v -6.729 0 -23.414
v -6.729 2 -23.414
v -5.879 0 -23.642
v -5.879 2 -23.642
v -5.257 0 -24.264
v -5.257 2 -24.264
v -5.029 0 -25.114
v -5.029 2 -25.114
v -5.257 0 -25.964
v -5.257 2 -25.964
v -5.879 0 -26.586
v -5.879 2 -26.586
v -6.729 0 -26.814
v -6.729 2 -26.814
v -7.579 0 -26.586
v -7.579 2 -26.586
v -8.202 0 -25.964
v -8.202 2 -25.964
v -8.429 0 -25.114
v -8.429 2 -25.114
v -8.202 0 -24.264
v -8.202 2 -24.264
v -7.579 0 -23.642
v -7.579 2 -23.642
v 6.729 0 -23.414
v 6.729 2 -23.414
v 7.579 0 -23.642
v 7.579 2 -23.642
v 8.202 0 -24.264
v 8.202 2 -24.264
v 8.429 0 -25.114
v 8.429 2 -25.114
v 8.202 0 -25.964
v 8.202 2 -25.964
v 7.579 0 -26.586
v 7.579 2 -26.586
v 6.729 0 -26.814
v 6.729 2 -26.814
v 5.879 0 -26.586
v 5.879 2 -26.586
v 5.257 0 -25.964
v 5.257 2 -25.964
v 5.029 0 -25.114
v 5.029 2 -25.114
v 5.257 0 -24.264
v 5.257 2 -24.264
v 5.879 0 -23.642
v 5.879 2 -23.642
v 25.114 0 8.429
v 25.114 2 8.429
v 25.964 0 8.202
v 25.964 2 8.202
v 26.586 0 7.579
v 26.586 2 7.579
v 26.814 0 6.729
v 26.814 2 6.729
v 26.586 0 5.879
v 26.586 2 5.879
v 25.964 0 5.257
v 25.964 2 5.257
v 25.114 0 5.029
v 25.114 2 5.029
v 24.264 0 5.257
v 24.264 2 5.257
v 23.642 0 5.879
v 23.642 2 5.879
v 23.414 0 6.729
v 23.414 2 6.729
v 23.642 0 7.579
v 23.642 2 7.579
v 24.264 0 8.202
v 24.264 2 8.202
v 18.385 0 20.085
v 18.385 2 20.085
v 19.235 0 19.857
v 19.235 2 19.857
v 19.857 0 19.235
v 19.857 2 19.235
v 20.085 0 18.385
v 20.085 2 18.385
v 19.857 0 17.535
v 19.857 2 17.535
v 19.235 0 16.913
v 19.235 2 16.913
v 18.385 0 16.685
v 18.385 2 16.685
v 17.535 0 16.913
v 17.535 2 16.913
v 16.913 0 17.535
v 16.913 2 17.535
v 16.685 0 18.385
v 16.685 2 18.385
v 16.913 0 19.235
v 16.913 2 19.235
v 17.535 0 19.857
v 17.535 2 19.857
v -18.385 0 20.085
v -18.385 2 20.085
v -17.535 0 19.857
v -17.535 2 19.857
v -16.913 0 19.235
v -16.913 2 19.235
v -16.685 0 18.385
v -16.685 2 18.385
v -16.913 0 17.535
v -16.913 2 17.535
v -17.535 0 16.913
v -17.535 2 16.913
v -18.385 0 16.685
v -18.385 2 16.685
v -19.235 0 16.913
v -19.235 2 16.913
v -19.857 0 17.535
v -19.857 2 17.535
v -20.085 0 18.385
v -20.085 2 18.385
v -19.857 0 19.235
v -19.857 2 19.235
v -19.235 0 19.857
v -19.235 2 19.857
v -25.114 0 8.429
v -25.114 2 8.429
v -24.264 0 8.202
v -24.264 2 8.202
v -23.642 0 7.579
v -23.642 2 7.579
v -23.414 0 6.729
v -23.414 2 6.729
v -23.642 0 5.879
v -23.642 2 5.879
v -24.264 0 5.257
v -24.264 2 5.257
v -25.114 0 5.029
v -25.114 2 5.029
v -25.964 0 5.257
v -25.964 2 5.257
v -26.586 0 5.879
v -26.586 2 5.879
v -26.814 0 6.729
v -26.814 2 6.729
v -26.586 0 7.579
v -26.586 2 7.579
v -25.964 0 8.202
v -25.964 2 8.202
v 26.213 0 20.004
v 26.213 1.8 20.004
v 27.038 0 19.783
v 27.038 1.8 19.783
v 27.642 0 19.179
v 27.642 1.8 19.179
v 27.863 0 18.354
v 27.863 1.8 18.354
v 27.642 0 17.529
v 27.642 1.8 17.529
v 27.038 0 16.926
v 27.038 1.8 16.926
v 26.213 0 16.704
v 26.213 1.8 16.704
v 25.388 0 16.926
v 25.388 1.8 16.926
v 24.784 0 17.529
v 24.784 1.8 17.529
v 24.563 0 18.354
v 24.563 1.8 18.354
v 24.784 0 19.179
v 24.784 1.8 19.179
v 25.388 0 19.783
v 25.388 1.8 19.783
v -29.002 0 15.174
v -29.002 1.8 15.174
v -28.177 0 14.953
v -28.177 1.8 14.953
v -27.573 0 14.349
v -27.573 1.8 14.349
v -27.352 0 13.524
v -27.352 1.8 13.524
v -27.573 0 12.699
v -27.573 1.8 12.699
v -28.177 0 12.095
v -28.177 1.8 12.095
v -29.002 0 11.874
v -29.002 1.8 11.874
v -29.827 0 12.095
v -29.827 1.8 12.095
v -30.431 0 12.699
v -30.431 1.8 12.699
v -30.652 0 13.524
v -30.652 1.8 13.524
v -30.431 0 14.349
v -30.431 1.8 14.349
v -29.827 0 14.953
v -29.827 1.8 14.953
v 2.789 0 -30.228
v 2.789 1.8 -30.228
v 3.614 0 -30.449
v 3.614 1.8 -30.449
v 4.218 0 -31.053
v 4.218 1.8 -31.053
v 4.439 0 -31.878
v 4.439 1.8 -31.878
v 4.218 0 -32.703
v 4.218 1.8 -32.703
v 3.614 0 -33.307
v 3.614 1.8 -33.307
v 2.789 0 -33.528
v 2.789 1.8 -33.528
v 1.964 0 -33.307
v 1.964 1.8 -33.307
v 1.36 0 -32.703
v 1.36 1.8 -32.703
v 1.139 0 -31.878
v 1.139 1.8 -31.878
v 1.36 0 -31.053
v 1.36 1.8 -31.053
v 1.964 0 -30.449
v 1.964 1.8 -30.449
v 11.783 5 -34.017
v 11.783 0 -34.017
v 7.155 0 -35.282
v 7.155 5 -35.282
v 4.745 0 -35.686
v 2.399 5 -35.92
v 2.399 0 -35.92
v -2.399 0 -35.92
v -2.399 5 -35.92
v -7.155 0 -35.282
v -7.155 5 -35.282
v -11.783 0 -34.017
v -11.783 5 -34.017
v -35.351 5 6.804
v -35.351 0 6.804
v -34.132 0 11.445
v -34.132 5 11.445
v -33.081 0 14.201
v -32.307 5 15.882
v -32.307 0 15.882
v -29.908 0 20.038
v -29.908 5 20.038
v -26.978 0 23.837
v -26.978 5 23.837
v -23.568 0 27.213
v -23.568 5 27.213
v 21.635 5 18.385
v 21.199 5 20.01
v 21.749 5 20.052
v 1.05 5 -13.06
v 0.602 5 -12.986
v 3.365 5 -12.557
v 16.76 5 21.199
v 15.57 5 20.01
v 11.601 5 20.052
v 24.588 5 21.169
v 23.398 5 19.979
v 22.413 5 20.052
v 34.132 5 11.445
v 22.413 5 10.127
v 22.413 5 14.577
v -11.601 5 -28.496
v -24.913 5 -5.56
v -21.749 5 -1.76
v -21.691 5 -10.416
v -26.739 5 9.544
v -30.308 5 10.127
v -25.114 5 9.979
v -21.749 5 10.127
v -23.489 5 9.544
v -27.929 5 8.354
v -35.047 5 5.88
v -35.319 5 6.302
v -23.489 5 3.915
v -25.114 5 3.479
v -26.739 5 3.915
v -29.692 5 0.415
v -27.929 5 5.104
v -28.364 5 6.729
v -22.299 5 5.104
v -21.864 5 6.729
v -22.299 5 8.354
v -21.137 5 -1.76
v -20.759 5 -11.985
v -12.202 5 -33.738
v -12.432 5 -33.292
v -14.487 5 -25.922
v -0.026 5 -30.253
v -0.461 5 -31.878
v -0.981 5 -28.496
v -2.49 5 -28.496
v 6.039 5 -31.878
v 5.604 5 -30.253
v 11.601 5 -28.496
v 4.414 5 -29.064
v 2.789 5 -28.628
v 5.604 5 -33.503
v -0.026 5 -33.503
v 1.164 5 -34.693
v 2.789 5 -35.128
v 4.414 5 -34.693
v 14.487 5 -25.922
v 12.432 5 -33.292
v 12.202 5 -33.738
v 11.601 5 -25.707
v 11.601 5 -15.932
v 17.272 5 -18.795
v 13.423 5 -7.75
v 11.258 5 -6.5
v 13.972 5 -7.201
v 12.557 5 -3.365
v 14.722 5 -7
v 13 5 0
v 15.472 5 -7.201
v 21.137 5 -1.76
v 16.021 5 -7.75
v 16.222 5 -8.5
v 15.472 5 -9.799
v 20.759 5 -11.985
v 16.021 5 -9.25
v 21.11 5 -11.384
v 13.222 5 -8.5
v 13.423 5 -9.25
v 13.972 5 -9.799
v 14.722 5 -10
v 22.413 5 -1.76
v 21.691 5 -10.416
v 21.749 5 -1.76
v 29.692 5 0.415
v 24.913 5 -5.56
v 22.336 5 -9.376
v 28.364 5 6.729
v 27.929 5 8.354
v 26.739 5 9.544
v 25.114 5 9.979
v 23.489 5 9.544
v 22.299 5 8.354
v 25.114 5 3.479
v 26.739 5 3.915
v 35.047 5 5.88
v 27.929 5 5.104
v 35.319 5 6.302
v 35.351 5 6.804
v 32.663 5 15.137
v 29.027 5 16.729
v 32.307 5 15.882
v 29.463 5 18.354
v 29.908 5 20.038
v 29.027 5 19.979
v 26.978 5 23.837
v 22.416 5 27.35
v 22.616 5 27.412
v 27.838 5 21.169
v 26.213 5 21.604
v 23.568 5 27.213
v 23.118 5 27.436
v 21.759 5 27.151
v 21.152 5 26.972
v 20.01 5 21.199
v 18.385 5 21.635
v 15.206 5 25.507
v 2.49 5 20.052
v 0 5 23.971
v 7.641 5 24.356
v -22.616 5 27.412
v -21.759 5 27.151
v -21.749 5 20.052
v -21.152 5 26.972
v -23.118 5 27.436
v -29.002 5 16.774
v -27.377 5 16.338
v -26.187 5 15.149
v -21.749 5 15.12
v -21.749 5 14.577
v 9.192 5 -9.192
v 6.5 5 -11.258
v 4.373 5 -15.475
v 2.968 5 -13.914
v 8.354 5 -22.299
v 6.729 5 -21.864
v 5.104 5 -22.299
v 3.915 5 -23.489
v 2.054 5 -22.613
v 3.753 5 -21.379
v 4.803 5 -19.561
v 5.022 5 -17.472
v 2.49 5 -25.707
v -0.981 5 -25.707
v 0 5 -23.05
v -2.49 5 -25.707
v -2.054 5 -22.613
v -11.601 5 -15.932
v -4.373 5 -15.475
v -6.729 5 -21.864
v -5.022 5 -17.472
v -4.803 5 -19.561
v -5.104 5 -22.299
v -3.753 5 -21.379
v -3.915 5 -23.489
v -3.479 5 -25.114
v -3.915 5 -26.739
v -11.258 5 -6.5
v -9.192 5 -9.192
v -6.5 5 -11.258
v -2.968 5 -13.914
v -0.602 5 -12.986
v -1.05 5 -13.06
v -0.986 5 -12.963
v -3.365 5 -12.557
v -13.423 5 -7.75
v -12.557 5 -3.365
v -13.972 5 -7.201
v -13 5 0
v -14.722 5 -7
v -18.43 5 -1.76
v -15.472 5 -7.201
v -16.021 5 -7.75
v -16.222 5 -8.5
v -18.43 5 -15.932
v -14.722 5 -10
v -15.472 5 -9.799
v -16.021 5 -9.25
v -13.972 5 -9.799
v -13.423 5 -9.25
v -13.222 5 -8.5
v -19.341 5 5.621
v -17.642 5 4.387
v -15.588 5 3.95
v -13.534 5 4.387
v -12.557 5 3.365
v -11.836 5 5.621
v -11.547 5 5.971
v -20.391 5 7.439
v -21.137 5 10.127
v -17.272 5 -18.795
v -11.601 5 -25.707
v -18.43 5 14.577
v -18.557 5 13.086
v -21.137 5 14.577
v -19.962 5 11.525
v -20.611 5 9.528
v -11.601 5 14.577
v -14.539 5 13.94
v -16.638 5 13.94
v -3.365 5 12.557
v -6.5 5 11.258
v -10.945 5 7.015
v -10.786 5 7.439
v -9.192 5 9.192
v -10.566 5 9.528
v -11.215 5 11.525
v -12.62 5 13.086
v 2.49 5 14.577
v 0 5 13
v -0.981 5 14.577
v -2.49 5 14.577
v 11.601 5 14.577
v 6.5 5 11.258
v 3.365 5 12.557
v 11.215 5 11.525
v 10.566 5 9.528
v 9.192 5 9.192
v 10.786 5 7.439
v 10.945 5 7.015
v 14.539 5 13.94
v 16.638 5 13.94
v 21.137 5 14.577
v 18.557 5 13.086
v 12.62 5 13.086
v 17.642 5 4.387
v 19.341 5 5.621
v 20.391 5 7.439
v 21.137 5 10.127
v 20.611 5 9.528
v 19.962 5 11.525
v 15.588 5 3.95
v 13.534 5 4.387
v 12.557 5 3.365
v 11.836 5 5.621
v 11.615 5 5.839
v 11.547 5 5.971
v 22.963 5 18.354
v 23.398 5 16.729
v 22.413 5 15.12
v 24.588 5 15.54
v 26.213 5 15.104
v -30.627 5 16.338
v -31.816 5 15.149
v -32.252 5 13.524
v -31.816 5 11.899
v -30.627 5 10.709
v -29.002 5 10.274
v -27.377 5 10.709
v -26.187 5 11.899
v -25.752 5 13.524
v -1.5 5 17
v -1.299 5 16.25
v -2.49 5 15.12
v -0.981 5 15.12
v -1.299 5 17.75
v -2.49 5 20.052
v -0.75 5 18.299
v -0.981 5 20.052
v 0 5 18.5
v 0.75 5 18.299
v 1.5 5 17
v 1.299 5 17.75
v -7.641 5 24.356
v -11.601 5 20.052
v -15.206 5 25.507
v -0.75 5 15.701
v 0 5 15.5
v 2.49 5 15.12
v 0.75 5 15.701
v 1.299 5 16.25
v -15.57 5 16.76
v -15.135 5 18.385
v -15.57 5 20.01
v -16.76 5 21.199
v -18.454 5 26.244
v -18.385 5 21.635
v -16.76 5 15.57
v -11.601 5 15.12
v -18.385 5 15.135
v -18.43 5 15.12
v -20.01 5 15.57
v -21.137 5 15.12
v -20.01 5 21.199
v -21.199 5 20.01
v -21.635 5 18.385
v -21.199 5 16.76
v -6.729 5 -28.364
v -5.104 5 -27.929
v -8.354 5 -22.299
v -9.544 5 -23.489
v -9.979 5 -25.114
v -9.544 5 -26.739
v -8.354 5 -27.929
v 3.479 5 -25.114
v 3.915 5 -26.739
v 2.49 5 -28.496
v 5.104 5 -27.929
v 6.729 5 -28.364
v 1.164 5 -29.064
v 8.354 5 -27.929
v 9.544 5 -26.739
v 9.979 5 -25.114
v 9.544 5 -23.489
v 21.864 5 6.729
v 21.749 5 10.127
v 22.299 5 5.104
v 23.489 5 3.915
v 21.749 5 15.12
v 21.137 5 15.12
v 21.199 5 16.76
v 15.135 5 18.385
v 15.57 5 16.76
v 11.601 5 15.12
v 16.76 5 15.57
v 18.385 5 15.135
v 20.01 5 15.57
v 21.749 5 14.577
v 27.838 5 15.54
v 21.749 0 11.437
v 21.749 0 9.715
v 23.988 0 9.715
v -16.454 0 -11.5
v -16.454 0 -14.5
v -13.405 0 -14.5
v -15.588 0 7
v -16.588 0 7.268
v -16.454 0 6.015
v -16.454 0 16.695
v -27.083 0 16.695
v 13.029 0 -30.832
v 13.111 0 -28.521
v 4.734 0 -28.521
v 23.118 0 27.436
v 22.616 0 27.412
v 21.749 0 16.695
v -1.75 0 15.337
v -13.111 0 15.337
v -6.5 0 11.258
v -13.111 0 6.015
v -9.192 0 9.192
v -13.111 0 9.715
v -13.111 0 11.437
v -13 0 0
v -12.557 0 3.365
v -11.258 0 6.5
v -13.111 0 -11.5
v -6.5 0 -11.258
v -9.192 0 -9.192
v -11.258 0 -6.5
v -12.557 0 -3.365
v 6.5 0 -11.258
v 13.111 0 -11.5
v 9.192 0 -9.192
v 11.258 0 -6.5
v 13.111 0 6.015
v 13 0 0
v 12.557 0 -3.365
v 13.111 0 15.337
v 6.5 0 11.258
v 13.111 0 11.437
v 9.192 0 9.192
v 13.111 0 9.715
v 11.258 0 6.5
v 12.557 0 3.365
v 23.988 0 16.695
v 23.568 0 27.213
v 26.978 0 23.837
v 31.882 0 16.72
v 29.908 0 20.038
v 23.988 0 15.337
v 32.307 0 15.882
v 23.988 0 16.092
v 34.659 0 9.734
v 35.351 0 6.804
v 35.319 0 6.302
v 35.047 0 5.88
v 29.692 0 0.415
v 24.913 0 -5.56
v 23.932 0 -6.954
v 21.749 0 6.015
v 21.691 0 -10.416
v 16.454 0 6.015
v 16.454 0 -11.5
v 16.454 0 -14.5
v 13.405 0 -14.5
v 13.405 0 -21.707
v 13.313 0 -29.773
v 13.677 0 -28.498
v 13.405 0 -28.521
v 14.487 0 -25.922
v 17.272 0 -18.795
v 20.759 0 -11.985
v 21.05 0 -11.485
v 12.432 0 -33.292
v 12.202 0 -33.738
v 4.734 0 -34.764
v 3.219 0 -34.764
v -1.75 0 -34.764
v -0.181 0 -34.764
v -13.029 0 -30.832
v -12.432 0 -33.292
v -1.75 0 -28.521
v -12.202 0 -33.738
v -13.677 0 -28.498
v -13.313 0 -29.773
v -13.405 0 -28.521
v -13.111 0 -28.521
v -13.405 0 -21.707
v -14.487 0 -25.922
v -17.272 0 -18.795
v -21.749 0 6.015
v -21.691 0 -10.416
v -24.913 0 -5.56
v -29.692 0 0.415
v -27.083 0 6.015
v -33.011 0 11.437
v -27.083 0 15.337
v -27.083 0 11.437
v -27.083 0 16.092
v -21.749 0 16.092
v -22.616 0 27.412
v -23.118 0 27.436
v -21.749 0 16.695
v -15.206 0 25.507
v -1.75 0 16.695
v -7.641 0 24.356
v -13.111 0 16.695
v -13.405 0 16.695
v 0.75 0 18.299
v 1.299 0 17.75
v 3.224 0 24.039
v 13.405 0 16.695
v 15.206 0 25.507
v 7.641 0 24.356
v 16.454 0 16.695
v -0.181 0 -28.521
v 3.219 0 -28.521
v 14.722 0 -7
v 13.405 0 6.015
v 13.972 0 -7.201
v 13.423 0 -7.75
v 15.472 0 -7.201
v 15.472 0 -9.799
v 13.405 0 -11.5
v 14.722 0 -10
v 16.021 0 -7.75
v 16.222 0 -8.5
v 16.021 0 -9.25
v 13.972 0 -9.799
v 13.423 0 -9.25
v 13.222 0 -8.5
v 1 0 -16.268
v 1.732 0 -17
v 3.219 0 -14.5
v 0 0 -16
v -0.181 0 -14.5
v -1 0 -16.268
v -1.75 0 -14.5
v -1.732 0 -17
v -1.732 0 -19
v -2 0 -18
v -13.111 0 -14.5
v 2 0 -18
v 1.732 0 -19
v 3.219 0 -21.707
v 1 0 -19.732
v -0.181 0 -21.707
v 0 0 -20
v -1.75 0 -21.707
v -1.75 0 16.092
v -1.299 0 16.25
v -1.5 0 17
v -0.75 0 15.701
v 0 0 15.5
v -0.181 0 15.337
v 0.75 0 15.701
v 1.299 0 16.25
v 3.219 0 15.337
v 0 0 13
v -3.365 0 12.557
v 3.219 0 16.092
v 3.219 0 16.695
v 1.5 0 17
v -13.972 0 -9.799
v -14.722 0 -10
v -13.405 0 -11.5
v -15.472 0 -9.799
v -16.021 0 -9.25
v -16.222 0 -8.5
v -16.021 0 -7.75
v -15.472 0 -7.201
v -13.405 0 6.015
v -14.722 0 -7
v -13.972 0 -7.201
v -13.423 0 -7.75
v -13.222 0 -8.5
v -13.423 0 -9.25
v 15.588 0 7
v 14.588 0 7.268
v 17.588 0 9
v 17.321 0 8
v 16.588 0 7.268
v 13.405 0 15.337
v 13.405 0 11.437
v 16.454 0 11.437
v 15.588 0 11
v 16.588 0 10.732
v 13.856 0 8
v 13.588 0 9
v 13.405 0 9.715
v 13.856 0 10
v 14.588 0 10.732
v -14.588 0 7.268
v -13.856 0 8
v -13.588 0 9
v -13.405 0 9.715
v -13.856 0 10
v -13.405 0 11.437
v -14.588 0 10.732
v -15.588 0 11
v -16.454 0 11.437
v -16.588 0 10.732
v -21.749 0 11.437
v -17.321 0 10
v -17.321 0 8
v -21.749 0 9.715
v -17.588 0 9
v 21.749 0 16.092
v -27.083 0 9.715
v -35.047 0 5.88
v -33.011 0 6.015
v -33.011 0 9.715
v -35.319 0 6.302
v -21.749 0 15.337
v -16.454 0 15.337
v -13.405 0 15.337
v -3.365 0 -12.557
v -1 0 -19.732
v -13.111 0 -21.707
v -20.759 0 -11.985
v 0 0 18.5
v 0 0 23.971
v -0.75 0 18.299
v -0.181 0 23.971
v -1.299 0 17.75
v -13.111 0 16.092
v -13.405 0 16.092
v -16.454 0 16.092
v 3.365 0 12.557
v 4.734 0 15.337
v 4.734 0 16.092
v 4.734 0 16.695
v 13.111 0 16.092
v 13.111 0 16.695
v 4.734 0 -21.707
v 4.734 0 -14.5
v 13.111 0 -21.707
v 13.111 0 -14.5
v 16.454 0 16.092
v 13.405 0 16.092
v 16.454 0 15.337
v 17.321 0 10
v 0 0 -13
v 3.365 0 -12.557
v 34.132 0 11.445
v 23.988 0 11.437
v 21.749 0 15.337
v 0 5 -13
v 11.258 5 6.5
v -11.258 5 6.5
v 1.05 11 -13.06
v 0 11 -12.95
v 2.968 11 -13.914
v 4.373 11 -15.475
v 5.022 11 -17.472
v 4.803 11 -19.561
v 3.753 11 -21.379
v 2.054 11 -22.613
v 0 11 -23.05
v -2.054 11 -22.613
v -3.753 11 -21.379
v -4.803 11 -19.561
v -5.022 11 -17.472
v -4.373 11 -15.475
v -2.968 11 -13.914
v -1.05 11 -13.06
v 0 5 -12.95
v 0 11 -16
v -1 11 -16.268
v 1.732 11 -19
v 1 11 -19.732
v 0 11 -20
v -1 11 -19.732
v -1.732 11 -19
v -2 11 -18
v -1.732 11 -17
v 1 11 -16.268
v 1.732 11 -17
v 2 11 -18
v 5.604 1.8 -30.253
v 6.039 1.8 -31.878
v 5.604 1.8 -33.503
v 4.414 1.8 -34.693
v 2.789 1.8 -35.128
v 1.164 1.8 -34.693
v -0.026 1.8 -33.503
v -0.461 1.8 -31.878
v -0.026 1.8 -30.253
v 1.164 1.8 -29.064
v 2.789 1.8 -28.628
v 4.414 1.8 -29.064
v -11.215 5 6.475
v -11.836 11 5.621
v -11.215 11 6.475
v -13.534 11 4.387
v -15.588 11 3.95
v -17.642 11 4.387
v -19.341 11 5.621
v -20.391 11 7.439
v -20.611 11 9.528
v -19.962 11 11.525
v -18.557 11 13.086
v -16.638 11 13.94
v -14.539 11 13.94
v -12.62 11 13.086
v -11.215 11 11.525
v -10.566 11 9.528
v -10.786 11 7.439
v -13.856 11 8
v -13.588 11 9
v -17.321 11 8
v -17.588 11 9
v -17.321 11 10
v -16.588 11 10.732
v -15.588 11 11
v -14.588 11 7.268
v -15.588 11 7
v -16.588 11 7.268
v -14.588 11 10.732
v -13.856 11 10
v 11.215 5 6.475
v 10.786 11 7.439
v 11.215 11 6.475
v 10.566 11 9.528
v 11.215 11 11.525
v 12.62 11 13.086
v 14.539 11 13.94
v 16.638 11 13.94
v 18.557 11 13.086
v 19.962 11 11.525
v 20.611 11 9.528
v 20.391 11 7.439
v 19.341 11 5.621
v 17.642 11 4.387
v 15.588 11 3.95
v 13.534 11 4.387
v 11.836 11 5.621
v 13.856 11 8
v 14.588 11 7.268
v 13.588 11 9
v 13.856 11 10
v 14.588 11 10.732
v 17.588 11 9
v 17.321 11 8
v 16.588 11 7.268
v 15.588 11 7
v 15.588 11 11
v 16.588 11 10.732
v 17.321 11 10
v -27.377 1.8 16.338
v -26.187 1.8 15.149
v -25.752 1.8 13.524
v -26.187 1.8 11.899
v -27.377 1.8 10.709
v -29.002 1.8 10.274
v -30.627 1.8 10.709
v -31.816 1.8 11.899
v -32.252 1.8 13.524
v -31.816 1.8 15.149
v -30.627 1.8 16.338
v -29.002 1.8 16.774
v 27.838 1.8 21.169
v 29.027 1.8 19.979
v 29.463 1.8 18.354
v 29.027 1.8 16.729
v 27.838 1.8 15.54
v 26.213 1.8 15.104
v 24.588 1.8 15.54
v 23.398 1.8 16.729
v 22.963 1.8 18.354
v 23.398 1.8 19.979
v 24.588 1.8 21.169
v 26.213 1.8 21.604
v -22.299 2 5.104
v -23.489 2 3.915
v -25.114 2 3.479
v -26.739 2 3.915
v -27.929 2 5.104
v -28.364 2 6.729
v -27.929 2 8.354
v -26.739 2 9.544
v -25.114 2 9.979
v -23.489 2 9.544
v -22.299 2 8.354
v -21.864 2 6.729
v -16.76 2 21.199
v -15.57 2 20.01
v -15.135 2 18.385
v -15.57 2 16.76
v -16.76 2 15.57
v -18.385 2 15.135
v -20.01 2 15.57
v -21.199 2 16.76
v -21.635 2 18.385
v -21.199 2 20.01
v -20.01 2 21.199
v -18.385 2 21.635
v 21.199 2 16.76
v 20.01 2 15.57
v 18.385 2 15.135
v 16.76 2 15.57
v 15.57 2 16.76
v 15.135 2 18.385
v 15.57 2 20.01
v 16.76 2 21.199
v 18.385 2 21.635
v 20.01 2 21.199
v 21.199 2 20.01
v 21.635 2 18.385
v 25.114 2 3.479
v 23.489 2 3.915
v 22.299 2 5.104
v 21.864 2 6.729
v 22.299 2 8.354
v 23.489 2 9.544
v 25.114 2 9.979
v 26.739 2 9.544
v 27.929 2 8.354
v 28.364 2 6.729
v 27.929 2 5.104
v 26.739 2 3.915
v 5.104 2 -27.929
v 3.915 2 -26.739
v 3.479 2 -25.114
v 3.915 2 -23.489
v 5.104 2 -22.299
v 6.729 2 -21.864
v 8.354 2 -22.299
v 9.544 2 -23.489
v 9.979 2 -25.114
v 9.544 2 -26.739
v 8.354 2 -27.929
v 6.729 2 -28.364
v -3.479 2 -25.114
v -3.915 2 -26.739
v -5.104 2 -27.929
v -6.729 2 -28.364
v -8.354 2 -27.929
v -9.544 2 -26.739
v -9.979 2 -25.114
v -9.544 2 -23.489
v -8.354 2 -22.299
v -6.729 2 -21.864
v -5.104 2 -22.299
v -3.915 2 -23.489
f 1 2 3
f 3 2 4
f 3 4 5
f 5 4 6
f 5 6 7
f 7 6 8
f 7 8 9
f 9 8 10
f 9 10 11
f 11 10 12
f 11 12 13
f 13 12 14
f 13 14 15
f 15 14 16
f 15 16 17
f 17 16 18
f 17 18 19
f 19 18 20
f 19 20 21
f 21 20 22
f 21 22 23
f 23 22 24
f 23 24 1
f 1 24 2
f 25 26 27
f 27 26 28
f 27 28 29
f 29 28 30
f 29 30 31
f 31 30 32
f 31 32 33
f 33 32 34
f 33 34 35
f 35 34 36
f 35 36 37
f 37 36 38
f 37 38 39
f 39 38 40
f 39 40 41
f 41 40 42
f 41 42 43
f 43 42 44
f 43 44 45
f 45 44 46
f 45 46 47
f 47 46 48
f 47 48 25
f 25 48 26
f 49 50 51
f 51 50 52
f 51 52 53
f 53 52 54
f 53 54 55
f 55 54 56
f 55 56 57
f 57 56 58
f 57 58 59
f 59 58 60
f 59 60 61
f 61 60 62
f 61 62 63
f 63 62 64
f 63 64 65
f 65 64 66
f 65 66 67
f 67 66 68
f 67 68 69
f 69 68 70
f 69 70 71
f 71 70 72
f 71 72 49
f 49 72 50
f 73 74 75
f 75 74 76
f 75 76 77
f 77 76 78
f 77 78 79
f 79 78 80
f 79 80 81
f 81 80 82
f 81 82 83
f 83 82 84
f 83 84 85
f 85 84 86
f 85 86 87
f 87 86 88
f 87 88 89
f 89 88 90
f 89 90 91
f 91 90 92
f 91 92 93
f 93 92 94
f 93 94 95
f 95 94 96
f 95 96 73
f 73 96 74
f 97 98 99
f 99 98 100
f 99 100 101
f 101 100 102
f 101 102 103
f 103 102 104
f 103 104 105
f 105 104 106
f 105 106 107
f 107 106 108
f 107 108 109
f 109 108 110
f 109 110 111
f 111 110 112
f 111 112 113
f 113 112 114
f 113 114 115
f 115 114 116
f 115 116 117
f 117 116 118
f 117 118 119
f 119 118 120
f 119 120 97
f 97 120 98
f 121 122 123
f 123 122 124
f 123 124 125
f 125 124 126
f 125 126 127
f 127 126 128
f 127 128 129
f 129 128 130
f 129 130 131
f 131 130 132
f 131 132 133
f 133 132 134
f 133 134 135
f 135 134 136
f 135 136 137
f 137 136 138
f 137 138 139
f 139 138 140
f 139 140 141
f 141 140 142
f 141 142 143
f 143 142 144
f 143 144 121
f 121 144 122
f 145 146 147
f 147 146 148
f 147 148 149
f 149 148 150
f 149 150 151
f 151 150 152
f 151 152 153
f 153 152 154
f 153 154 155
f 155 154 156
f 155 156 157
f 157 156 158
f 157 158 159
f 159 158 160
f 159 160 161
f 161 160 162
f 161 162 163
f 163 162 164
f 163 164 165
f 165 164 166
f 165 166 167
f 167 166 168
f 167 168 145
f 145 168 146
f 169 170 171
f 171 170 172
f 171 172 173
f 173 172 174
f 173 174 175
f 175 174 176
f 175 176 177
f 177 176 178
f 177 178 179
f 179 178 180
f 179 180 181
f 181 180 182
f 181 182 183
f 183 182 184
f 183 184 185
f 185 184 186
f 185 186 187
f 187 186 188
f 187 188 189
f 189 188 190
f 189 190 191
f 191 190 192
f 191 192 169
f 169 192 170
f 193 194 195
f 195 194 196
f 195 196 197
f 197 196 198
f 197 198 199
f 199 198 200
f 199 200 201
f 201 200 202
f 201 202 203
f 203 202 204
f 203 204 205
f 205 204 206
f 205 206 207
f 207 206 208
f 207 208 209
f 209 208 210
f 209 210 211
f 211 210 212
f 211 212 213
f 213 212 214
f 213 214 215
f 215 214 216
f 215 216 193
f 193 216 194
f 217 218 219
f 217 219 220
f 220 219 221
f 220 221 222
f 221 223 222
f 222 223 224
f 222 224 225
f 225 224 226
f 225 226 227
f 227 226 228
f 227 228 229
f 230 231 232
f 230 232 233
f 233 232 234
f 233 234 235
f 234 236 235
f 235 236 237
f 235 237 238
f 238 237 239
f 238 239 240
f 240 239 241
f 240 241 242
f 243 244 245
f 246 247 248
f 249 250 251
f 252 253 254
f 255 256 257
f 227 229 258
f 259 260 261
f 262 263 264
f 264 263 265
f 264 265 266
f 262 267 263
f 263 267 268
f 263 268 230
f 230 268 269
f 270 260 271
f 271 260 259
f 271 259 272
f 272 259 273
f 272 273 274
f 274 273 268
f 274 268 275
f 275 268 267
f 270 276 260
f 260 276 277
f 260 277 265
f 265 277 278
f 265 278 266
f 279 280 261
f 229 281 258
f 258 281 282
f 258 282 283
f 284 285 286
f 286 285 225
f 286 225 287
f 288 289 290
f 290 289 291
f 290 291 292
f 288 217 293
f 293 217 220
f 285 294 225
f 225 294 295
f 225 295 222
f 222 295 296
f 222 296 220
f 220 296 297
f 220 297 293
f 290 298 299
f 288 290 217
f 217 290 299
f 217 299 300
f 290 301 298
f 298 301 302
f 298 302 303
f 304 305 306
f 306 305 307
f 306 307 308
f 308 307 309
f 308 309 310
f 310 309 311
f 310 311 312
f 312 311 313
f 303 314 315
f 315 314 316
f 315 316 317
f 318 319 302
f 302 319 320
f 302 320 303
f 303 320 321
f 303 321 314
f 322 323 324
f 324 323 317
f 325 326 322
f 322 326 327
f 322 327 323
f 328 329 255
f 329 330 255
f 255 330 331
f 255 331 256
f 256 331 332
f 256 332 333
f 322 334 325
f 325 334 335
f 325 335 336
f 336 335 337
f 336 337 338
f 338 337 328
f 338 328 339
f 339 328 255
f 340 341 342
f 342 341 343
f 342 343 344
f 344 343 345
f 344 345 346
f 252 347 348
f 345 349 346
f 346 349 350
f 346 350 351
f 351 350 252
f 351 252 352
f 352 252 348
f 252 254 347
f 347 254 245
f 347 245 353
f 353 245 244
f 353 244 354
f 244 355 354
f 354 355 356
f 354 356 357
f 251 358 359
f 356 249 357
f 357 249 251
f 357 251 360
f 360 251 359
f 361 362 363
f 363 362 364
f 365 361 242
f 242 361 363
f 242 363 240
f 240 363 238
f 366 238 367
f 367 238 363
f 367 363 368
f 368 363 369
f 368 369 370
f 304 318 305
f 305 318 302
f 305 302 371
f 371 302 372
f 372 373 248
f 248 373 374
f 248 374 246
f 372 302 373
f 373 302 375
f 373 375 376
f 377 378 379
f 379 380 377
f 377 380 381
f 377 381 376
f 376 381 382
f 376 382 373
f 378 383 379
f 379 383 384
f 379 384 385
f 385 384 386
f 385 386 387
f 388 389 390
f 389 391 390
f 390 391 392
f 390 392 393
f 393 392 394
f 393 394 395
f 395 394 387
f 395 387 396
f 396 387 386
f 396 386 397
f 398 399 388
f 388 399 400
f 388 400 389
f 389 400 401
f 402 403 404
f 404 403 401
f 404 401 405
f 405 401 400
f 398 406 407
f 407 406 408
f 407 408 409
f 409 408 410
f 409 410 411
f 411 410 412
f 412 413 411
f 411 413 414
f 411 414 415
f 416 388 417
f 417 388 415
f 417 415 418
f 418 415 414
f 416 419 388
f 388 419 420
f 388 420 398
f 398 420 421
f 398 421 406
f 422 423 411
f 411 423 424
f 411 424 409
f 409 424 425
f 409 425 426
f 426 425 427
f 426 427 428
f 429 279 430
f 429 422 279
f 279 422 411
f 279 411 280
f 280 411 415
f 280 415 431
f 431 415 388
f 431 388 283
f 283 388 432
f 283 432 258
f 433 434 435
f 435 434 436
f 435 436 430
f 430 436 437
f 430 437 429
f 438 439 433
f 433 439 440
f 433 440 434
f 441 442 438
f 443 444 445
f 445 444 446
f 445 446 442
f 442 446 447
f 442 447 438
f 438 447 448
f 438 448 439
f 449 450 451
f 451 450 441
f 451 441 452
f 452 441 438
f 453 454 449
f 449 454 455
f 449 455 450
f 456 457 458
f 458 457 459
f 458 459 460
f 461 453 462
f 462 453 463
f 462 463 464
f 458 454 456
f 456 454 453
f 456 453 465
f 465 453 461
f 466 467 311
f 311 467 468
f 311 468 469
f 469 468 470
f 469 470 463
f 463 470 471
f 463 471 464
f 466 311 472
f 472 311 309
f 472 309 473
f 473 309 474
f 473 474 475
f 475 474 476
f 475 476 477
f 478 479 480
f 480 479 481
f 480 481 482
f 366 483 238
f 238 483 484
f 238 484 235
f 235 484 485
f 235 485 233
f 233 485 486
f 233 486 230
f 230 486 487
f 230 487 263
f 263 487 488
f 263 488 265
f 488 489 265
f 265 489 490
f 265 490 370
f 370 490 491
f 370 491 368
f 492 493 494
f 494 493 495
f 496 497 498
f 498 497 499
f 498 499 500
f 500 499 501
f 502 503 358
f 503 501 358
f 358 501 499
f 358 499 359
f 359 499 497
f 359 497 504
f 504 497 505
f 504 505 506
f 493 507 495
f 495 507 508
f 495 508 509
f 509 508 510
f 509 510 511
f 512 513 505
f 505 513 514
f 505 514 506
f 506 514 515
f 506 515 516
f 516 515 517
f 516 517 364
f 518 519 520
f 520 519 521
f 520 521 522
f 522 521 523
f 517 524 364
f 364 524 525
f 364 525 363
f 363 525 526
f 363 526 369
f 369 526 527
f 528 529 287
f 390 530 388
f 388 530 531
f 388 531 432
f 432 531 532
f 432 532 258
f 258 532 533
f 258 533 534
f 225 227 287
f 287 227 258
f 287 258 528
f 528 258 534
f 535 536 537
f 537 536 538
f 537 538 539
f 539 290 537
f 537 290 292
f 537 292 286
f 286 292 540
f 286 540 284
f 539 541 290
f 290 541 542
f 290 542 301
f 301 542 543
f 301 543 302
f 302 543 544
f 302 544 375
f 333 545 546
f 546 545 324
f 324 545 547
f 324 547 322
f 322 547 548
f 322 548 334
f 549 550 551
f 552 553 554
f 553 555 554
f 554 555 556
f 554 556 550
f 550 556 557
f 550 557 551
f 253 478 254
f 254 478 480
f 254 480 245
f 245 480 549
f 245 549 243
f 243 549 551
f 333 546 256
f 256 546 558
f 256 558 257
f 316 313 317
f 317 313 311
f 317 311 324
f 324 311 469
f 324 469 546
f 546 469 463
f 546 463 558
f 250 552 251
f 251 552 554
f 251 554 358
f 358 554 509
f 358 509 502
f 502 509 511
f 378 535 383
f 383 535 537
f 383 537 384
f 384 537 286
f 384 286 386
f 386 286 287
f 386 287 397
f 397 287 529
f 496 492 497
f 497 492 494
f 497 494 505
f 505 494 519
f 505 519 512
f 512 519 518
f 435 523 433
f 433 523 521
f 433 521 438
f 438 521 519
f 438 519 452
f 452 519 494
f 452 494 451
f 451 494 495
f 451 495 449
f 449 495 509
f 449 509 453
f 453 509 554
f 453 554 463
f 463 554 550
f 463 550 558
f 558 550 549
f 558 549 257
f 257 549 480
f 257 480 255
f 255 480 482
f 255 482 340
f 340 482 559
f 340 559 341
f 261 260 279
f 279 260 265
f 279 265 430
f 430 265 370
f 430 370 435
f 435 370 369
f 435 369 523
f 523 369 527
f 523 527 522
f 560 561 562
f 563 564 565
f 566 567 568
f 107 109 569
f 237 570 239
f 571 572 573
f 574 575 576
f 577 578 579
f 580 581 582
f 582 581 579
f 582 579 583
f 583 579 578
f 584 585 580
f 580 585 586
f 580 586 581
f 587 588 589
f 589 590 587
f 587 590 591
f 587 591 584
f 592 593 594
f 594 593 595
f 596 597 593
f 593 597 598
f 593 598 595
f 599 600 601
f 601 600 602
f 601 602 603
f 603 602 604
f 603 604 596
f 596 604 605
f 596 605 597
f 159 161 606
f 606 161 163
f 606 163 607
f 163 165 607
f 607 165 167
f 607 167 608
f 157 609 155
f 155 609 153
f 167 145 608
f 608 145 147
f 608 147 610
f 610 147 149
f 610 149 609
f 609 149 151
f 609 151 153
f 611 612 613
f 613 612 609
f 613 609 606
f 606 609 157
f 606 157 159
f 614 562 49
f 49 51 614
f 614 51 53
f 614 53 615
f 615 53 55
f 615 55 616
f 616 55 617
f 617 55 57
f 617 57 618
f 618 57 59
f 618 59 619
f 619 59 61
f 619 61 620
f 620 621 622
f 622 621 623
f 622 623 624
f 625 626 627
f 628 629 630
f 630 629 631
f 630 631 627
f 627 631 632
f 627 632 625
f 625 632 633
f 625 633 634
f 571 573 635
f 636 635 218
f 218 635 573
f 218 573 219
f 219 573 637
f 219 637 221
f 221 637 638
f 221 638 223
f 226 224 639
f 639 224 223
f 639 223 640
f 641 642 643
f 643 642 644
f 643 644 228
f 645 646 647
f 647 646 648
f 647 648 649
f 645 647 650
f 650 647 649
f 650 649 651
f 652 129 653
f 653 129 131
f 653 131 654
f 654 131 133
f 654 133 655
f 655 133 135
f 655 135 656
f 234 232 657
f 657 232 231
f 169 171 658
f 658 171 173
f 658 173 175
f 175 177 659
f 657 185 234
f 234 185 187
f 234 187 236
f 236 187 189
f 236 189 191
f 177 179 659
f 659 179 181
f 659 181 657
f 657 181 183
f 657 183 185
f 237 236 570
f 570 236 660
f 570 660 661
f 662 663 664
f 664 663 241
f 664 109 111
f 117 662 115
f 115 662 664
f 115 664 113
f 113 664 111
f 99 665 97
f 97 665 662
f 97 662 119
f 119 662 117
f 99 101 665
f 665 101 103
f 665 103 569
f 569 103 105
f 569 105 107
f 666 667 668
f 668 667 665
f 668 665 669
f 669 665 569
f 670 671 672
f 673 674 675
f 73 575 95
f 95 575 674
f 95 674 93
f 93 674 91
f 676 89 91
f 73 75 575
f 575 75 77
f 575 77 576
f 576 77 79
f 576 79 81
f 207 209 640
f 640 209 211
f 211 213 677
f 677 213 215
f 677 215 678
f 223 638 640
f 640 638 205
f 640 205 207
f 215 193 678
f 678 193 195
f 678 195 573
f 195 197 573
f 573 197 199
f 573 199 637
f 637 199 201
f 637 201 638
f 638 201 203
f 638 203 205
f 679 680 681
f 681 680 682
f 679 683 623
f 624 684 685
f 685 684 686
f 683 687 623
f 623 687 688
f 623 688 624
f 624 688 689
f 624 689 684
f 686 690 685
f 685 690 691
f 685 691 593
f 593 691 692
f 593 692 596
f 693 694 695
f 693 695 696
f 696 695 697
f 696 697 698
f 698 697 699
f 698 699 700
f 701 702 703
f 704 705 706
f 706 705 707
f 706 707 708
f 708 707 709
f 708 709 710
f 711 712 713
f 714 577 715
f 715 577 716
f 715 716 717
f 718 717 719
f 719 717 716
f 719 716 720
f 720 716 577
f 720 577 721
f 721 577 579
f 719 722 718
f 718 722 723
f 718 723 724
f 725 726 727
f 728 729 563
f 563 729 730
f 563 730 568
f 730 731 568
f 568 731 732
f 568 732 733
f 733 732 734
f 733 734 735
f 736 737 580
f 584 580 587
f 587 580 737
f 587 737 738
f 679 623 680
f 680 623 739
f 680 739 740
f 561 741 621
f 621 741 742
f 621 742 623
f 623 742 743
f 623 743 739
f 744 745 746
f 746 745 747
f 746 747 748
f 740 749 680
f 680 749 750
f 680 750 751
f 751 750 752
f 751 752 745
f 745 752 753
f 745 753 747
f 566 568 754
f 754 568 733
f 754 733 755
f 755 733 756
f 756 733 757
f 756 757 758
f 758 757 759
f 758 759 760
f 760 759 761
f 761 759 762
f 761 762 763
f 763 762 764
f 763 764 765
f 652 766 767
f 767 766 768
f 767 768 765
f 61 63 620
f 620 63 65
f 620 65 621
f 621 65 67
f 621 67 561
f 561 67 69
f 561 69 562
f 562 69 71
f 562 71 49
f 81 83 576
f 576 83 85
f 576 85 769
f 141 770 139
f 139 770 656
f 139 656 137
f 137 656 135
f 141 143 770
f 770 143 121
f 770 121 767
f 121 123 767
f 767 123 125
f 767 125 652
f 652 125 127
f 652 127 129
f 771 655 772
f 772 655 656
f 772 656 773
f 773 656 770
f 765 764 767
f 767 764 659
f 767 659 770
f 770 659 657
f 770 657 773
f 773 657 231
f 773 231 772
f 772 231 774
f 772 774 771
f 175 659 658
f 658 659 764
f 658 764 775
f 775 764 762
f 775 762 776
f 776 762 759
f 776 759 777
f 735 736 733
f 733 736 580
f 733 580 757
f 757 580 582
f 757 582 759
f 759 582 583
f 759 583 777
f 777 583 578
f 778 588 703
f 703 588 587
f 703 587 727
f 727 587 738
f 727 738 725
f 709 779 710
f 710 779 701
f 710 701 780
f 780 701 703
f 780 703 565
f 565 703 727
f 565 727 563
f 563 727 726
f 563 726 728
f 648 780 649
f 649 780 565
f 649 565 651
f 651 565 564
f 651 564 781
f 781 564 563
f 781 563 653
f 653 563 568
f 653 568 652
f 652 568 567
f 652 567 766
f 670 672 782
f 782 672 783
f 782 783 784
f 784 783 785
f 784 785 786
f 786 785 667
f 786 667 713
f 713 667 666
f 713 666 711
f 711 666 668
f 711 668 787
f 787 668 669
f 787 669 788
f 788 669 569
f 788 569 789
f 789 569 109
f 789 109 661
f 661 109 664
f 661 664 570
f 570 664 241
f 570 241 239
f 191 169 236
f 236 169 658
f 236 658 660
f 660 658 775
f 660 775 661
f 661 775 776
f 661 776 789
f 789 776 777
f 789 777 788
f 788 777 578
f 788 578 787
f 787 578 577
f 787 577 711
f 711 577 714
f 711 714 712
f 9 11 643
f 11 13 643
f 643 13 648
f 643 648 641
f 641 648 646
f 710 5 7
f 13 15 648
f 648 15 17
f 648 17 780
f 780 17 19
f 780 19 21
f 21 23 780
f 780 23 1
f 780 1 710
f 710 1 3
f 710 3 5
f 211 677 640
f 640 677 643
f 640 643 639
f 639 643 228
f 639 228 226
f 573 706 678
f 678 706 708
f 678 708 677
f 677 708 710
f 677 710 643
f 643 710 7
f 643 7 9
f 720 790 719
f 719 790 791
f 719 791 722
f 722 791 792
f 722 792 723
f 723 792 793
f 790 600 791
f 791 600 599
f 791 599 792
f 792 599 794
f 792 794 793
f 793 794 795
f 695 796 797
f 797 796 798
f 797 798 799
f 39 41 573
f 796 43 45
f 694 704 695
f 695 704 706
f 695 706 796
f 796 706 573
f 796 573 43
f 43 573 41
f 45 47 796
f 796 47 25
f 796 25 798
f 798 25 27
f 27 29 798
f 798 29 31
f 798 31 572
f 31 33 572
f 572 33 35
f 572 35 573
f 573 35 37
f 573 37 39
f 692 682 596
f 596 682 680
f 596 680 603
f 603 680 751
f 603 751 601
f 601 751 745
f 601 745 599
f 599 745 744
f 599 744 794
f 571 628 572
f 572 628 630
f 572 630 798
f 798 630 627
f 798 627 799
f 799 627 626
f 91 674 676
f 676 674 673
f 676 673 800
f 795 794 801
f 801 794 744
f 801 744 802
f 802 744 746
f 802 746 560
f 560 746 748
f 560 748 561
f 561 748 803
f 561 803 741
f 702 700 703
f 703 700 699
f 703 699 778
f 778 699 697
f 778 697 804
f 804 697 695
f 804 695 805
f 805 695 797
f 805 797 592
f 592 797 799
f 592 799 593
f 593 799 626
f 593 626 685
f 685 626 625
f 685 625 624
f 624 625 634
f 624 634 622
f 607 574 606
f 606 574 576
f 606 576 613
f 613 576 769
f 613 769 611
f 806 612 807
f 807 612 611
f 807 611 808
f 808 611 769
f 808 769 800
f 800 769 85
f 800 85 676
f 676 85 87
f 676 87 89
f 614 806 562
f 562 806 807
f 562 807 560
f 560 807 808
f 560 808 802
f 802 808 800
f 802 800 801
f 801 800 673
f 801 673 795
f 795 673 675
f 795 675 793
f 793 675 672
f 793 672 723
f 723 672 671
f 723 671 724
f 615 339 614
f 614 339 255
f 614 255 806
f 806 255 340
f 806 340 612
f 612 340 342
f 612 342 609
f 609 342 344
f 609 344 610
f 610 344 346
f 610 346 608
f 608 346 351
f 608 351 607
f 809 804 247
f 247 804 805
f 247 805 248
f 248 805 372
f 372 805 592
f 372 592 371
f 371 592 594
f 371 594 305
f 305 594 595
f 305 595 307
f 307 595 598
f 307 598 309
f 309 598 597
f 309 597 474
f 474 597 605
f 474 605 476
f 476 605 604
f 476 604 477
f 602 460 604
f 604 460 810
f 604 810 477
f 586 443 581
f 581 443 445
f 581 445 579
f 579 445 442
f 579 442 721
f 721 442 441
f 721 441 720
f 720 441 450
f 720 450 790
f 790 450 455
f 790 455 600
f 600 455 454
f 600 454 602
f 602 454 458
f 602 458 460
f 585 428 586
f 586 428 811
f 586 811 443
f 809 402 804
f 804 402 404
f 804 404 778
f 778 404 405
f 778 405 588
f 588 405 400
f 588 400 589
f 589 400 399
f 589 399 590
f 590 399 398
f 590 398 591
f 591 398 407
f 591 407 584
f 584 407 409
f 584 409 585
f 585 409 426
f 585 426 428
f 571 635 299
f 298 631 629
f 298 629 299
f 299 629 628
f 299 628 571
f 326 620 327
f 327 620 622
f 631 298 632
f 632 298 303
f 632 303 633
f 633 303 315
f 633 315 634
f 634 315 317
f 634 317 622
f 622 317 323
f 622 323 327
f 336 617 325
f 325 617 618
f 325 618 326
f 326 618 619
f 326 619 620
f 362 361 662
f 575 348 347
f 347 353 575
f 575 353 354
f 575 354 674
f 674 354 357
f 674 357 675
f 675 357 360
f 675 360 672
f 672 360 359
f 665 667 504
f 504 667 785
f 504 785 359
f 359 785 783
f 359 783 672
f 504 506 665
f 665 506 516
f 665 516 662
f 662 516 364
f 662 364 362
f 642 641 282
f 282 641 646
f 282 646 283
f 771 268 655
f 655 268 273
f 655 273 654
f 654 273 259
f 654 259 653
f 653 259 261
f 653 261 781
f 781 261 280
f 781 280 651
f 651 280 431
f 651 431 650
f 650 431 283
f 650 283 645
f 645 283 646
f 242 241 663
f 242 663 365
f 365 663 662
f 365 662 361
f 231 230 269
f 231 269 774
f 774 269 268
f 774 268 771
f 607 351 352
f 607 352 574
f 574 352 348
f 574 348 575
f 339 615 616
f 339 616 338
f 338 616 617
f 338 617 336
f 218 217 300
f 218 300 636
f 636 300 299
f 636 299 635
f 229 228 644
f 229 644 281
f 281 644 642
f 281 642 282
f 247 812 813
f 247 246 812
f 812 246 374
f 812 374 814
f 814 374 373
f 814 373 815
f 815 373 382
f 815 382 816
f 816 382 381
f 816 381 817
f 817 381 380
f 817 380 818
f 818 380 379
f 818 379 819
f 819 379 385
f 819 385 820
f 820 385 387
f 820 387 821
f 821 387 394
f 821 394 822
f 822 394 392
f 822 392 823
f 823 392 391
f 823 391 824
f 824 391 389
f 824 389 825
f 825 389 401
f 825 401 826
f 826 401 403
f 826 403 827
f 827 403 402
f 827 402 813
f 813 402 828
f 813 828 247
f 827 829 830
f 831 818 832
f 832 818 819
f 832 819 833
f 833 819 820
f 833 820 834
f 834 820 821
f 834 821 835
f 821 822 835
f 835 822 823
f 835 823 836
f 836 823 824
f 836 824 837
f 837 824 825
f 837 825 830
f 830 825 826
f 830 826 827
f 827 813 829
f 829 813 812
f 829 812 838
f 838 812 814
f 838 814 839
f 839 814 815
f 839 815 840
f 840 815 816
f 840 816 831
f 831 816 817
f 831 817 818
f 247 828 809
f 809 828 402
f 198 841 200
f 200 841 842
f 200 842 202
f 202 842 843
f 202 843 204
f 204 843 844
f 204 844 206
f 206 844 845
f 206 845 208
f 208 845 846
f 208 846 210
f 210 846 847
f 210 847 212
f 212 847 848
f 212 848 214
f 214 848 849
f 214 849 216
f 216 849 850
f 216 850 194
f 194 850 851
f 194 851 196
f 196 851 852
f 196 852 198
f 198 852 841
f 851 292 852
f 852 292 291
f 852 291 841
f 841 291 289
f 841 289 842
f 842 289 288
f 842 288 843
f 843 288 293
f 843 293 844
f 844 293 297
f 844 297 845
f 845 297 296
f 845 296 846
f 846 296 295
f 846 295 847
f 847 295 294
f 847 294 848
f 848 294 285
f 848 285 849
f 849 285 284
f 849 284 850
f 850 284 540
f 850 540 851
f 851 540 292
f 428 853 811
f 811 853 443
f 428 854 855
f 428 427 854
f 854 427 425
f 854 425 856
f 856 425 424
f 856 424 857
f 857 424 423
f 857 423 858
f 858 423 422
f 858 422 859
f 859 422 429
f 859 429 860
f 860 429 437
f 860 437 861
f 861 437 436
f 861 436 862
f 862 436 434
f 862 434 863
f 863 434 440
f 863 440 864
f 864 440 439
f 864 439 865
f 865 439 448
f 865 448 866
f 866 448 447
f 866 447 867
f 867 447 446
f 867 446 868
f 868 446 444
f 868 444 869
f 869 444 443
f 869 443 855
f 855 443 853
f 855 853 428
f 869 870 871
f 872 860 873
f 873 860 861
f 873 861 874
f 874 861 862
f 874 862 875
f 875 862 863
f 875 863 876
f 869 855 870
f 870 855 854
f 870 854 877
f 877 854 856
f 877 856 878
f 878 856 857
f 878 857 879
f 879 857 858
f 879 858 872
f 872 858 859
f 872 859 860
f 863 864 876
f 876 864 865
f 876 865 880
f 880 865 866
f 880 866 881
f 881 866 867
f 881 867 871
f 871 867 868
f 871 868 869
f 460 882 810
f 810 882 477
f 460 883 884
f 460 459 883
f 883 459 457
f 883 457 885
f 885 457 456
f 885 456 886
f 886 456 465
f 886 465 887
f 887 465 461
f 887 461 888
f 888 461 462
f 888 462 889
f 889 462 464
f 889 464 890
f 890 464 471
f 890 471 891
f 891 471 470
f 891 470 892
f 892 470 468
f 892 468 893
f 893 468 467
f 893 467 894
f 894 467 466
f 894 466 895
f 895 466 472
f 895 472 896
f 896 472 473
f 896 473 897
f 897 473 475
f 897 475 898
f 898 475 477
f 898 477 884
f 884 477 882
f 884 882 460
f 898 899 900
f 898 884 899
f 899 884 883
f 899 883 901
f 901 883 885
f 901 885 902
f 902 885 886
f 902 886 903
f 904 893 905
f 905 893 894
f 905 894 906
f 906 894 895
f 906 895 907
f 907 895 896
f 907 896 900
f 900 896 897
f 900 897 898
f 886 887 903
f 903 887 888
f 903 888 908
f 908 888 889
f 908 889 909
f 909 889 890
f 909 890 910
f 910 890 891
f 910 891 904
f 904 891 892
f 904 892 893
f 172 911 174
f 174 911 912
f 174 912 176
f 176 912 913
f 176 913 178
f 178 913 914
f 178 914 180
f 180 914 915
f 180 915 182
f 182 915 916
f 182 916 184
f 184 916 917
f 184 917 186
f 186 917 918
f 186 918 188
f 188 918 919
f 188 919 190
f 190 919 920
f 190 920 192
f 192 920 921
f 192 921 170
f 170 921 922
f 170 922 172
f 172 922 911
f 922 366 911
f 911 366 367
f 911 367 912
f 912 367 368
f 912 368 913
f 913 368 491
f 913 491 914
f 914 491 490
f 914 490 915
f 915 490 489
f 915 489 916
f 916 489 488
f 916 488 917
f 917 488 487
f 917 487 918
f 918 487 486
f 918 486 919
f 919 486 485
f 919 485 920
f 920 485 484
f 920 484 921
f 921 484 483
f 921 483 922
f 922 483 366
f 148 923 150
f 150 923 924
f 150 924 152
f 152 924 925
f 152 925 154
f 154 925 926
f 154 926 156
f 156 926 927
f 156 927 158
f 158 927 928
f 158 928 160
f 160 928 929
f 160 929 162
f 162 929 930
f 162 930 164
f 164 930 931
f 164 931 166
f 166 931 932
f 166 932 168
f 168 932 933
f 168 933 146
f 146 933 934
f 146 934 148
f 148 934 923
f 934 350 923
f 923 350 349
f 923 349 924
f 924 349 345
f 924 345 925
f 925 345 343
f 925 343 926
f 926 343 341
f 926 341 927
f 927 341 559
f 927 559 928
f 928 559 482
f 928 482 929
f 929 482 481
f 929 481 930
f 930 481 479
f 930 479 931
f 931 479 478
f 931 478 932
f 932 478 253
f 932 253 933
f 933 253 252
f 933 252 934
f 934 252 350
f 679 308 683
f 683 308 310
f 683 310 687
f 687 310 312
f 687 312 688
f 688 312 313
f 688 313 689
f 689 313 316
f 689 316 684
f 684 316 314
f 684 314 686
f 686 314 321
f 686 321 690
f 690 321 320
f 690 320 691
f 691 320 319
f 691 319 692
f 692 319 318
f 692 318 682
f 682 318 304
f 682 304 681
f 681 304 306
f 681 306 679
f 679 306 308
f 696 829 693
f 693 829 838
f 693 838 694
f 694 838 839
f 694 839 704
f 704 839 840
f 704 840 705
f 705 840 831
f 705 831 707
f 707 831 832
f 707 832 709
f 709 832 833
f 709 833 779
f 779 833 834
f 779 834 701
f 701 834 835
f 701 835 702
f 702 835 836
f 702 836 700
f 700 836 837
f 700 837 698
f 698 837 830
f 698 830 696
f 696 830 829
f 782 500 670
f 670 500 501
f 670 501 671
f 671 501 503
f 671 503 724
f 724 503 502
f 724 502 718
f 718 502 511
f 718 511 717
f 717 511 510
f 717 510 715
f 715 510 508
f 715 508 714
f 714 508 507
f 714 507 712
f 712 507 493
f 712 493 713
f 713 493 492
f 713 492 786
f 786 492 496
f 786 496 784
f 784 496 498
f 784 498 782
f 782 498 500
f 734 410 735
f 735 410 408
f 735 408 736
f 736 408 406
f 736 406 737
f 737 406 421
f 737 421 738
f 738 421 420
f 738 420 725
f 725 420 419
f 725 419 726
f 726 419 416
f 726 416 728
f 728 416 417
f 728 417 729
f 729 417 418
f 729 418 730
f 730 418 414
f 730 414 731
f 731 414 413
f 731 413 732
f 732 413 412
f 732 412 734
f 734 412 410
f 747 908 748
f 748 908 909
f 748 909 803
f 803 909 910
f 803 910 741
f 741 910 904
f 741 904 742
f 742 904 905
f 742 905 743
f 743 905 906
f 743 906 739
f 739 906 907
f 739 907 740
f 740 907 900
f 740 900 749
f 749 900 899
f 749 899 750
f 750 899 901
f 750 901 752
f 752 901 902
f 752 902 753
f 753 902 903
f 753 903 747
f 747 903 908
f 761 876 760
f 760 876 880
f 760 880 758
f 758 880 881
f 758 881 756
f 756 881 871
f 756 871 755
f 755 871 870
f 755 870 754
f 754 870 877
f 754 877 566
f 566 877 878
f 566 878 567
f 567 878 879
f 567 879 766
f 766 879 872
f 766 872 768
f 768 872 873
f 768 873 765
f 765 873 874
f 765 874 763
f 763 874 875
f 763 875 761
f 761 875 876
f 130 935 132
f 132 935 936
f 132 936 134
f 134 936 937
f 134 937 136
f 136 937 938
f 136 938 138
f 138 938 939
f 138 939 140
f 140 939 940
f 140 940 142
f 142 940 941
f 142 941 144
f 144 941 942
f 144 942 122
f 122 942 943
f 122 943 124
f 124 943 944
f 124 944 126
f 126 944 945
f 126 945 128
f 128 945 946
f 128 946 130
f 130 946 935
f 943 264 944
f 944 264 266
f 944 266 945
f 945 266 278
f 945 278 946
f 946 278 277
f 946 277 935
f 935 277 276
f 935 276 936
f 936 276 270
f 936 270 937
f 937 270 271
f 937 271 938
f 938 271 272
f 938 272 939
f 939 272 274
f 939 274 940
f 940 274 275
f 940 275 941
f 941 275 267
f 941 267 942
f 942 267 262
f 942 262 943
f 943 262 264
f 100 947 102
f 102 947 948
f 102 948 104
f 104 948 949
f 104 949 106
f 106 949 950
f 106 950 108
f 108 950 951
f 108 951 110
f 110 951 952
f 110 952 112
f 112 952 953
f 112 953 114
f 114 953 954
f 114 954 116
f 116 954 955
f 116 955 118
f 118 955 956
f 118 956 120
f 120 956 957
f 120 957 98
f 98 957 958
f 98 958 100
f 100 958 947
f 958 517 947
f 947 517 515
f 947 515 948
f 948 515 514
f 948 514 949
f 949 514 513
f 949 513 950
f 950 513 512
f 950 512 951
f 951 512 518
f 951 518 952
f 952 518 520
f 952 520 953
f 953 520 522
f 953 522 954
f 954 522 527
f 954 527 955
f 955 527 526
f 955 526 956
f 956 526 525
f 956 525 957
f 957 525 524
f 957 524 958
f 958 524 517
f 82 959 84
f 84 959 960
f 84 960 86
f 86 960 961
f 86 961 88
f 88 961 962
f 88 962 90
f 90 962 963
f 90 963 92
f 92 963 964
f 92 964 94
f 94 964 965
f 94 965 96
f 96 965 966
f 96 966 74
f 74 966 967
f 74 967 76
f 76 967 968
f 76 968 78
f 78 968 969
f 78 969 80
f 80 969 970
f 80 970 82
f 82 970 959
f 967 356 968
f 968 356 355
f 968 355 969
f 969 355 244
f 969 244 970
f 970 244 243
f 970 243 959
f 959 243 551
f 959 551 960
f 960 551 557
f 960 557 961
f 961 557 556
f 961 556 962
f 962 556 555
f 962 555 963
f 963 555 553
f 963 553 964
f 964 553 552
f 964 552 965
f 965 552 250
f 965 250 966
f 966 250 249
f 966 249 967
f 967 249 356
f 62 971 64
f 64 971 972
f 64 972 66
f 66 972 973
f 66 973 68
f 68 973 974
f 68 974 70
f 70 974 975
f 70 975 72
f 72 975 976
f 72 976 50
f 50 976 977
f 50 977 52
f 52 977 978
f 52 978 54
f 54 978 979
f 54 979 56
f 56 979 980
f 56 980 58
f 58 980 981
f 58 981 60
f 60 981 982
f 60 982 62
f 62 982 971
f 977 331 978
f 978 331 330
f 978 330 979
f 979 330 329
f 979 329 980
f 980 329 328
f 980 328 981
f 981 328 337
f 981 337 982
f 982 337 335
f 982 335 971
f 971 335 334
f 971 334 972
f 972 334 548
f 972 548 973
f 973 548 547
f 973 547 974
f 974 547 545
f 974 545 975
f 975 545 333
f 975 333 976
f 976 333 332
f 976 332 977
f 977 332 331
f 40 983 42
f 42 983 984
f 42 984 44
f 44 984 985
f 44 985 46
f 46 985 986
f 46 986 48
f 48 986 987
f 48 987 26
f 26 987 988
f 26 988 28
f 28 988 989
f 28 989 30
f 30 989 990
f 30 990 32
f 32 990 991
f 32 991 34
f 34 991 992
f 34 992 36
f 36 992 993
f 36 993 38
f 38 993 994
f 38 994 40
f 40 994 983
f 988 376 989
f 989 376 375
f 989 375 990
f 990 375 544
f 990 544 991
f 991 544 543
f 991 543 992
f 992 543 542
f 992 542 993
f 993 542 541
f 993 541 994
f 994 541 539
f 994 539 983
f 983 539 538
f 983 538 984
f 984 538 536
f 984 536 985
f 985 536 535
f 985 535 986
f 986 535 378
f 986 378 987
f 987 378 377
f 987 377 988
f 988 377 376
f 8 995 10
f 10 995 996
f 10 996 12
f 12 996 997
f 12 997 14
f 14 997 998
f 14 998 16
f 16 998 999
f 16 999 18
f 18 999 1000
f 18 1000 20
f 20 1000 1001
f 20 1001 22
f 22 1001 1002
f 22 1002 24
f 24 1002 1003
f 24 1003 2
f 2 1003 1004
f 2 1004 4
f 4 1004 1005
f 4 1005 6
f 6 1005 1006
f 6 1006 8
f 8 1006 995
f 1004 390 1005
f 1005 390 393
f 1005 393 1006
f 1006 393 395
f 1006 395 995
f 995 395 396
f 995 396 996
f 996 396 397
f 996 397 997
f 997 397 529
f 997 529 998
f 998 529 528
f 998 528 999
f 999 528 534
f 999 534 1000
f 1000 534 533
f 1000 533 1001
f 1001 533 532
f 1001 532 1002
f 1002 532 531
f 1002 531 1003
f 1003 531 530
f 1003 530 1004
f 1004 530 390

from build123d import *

# Parameters (mm, degrees)
SKETCH1_R           = 36
SKETCH1_R_2         = 13
BOSS_EXTRUDE1_DEPTH = 5
SKETCH2_R           = 1.65
CUT_EXTRUDE1_DEPTH  = 6
CIRPATTERN1_COUNT   = 3
SKETCH3_R           = 76.029468034
CUT_EXTRUDE2_DEPTH  = 10
CIRPATTERN2_COUNT   = 3
FILLET1_R           = 1
SKETCH4_R           = 5.05
BOSS_EXTRUDE2_DEPTH = 6
SKETCH7_R           = 3.25
CUT_EXTRUDE5_DEPTH  = 3.2
CIRPATTERN3_COUNT   = 3
SKETCH8_R           = 1.5
CUT_EXTRUDE6_DEPTH  = 10
SKETCH12_R          = 2
CUT_EXTRUDE8_DEPTH  = 12.0000001
CIRPATTERN4_COUNT   = 3
SKETCH13_R          = 1.7
CUT_EXTRUDE9_DEPTH  = 6.0000001
CIRPATTERN5_COUNT   = 3
SKETCH14_R          = 3.25
CUT_EXTRUDE10_DEPTH = 3


with BuildPart() as part:
    # Sketch1 → Boss-Extrude1 (new body)
    with BuildSketch(Plane(origin=(0, 0, 0), x_dir=(1, 0, 0), z_dir=(0, 1, 0))):
        Circle(SKETCH1_R)
        Circle(SKETCH1_R_2, mode=Mode.SUBTRACT)
    extrude(amount=BOSS_EXTRUDE1_DEPTH)

    # Sketch2 → Cut-Extrude1 (cut, through all)
    with BuildSketch(Plane(origin=(0, 5, 0), x_dir=(1, 0, 0), z_dir=(0, 1, 0))):
        with Locations((2.788983768, 31.878230339)):
            Circle(SKETCH2_R)
    cut_extrude1 = extrude(amount=-CUT_EXTRUDE1_DEPTH, mode=Mode.SUBTRACT)

    # CirPattern1: Cut-Extrude1 ×3 about axis
    cirpattern1_axis = Axis((0, 0, 0), (0, 1, 0))
    for i in range(1, CIRPATTERN1_COUNT):
        add(cut_extrude1.rotate(cirpattern1_axis, i * 360 / CIRPATTERN1_COUNT), mode=Mode.SUBTRACT)

    # Sketch3 → Cut-Extrude2 (cut)
    with BuildSketch(Plane(origin=(0, 5, 0), x_dir=(1, 0, 0), z_dir=(0, 1, 0))):
        with Locations((86.602540378, 50)):
            Circle(SKETCH3_R)
    cut_extrude2 = extrude(amount=-CUT_EXTRUDE2_DEPTH, mode=Mode.SUBTRACT)

    # CirPattern2: Cut-Extrude2 ×3 about axis
    cirpattern2_axis = Axis((0, 0, 0), (0, 1, 0))
    for i in range(1, CIRPATTERN2_COUNT):
        add(cut_extrude2.rotate(cirpattern2_axis, i * 360 / CIRPATTERN2_COUNT), mode=Mode.SUBTRACT)

    # Fillet1
    fillet1_edges = [part.edges().sort_by_distance(p)[0] for p in [
        (12.31272516, 2.5, -33.828934348),
        (35.453079108, 2.5, 6.251334396),
        (23.140353949, 2.5, 27.577599952),
        (-23.140353949, 2.5, 27.577599952),
        (-35.453079108, 2.5, 6.251334396),
        (-12.31272516, 2.5, -33.828934348),
    ]]
    fillet(fillet1_edges, radius=FILLET1_R)

    # Sketch4 → Boss-Extrude2 (add)
    with BuildSketch(Plane(origin=(0, 5, 0), x_dir=(1, 0, 0), z_dir=(0, 1, 0))):
        with Locations((0, 18)):
            Circle(SKETCH4_R)
    boss_extrude2 = extrude(amount=BOSS_EXTRUDE2_DEPTH)

    # Sketch7 → Cut-Extrude5 (cut)
    with BuildSketch(Plane(origin=(0, 5, 0), x_dir=(1, 0, 0), z_dir=(0, 1, 0))):
        with Locations((2.788983768, 31.878230339)):
            Circle(SKETCH7_R)
    cut_extrude5 = extrude(amount=-CUT_EXTRUDE5_DEPTH, mode=Mode.SUBTRACT)

    # CirPattern3: Boss-Extrude2, Cut-Extrude5 ×3 about axis
    cirpattern3_axis = Axis((0, 0, 0), (0, 1, 0))
    for i in range(1, CIRPATTERN3_COUNT):
        add(boss_extrude2.rotate(cirpattern3_axis, i * 360 / CIRPATTERN3_COUNT))
        add(cut_extrude5.rotate(cirpattern3_axis, i * 360 / CIRPATTERN3_COUNT), mode=Mode.SUBTRACT)

    # Sketch8 → Cut-Extrude6 (cut)
    with BuildSketch(Plane(origin=(0, 5, 0), x_dir=(1, 0, 0), z_dir=(0, 1, 0))):
        with Locations((14.722431864, 8.5)):
            Circle(SKETCH8_R)
    cut_extrude6 = extrude(amount=-CUT_EXTRUDE6_DEPTH, mode=Mode.SUBTRACT)

    # Sketch12 → Cut-Extrude8 (cut, through all)
    with BuildSketch(Plane(origin=(0, 11, 0), x_dir=(1, 0, 0), z_dir=(0, 1, 0))):
        with Locations((0, 18)):
            Circle(SKETCH12_R)
    cut_extrude8 = extrude(amount=-CUT_EXTRUDE8_DEPTH, mode=Mode.SUBTRACT)

    # CirPattern4: Cut-Extrude6, Cut-Extrude8 ×3 about axis
    cirpattern4_axis = Axis((0, 0, 0), (0, 1, 0))
    for i in range(1, CIRPATTERN4_COUNT):
        add(cut_extrude6.rotate(cirpattern4_axis, i * 360 / CIRPATTERN4_COUNT), mode=Mode.SUBTRACT)
        add(cut_extrude8.rotate(cirpattern4_axis, i * 360 / CIRPATTERN4_COUNT), mode=Mode.SUBTRACT)

    # Sketch13 → Cut-Extrude9 (cut, through all)
    with BuildSketch(Plane(origin=(0, 5, 0), x_dir=(1, 0, 0), z_dir=(0, 1, 0))):
        with Locations((6.729295173, 25.114071484)):
            Circle(SKETCH13_R)
        with Locations((-6.729295173, 25.114071484)):
            Circle(SKETCH13_R)
    cut_extrude9 = extrude(amount=-CUT_EXTRUDE9_DEPTH, mode=Mode.SUBTRACT)

    # CirPattern5: Cut-Extrude9 ×3 about axis
    cirpattern5_axis = Axis((0, 0, 0), (0, 1, 0))
    for i in range(1, CIRPATTERN5_COUNT):
        add(cut_extrude9.rotate(cirpattern5_axis, i * 360 / CIRPATTERN5_COUNT), mode=Mode.SUBTRACT)

    # Sketch14 → Cut-Extrude10 (cut)
    with BuildSketch(Plane(origin=(0, 5, 0), x_dir=(1, 0, 0), z_dir=(0, 1, 0))):
        with Locations((-18.384776311, -18.384776311)):
            Circle(SKETCH14_R)
        with Locations((-25.114071484, -6.729295173)):
            Circle(SKETCH14_R)
        with Locations((-6.729295173, 25.114071484)):
            Circle(SKETCH14_R)
        with Locations((6.729295173, 25.114071484)):
            Circle(SKETCH14_R)
        with Locations((25.114071484, -6.729295173)):
            Circle(SKETCH14_R)
        with Locations((18.384776311, -18.384776311)):
            Circle(SKETCH14_R)
    extrude(amount=-CUT_EXTRUDE10_DEPTH, mode=Mode.SUBTRACT)


solid = part.part
